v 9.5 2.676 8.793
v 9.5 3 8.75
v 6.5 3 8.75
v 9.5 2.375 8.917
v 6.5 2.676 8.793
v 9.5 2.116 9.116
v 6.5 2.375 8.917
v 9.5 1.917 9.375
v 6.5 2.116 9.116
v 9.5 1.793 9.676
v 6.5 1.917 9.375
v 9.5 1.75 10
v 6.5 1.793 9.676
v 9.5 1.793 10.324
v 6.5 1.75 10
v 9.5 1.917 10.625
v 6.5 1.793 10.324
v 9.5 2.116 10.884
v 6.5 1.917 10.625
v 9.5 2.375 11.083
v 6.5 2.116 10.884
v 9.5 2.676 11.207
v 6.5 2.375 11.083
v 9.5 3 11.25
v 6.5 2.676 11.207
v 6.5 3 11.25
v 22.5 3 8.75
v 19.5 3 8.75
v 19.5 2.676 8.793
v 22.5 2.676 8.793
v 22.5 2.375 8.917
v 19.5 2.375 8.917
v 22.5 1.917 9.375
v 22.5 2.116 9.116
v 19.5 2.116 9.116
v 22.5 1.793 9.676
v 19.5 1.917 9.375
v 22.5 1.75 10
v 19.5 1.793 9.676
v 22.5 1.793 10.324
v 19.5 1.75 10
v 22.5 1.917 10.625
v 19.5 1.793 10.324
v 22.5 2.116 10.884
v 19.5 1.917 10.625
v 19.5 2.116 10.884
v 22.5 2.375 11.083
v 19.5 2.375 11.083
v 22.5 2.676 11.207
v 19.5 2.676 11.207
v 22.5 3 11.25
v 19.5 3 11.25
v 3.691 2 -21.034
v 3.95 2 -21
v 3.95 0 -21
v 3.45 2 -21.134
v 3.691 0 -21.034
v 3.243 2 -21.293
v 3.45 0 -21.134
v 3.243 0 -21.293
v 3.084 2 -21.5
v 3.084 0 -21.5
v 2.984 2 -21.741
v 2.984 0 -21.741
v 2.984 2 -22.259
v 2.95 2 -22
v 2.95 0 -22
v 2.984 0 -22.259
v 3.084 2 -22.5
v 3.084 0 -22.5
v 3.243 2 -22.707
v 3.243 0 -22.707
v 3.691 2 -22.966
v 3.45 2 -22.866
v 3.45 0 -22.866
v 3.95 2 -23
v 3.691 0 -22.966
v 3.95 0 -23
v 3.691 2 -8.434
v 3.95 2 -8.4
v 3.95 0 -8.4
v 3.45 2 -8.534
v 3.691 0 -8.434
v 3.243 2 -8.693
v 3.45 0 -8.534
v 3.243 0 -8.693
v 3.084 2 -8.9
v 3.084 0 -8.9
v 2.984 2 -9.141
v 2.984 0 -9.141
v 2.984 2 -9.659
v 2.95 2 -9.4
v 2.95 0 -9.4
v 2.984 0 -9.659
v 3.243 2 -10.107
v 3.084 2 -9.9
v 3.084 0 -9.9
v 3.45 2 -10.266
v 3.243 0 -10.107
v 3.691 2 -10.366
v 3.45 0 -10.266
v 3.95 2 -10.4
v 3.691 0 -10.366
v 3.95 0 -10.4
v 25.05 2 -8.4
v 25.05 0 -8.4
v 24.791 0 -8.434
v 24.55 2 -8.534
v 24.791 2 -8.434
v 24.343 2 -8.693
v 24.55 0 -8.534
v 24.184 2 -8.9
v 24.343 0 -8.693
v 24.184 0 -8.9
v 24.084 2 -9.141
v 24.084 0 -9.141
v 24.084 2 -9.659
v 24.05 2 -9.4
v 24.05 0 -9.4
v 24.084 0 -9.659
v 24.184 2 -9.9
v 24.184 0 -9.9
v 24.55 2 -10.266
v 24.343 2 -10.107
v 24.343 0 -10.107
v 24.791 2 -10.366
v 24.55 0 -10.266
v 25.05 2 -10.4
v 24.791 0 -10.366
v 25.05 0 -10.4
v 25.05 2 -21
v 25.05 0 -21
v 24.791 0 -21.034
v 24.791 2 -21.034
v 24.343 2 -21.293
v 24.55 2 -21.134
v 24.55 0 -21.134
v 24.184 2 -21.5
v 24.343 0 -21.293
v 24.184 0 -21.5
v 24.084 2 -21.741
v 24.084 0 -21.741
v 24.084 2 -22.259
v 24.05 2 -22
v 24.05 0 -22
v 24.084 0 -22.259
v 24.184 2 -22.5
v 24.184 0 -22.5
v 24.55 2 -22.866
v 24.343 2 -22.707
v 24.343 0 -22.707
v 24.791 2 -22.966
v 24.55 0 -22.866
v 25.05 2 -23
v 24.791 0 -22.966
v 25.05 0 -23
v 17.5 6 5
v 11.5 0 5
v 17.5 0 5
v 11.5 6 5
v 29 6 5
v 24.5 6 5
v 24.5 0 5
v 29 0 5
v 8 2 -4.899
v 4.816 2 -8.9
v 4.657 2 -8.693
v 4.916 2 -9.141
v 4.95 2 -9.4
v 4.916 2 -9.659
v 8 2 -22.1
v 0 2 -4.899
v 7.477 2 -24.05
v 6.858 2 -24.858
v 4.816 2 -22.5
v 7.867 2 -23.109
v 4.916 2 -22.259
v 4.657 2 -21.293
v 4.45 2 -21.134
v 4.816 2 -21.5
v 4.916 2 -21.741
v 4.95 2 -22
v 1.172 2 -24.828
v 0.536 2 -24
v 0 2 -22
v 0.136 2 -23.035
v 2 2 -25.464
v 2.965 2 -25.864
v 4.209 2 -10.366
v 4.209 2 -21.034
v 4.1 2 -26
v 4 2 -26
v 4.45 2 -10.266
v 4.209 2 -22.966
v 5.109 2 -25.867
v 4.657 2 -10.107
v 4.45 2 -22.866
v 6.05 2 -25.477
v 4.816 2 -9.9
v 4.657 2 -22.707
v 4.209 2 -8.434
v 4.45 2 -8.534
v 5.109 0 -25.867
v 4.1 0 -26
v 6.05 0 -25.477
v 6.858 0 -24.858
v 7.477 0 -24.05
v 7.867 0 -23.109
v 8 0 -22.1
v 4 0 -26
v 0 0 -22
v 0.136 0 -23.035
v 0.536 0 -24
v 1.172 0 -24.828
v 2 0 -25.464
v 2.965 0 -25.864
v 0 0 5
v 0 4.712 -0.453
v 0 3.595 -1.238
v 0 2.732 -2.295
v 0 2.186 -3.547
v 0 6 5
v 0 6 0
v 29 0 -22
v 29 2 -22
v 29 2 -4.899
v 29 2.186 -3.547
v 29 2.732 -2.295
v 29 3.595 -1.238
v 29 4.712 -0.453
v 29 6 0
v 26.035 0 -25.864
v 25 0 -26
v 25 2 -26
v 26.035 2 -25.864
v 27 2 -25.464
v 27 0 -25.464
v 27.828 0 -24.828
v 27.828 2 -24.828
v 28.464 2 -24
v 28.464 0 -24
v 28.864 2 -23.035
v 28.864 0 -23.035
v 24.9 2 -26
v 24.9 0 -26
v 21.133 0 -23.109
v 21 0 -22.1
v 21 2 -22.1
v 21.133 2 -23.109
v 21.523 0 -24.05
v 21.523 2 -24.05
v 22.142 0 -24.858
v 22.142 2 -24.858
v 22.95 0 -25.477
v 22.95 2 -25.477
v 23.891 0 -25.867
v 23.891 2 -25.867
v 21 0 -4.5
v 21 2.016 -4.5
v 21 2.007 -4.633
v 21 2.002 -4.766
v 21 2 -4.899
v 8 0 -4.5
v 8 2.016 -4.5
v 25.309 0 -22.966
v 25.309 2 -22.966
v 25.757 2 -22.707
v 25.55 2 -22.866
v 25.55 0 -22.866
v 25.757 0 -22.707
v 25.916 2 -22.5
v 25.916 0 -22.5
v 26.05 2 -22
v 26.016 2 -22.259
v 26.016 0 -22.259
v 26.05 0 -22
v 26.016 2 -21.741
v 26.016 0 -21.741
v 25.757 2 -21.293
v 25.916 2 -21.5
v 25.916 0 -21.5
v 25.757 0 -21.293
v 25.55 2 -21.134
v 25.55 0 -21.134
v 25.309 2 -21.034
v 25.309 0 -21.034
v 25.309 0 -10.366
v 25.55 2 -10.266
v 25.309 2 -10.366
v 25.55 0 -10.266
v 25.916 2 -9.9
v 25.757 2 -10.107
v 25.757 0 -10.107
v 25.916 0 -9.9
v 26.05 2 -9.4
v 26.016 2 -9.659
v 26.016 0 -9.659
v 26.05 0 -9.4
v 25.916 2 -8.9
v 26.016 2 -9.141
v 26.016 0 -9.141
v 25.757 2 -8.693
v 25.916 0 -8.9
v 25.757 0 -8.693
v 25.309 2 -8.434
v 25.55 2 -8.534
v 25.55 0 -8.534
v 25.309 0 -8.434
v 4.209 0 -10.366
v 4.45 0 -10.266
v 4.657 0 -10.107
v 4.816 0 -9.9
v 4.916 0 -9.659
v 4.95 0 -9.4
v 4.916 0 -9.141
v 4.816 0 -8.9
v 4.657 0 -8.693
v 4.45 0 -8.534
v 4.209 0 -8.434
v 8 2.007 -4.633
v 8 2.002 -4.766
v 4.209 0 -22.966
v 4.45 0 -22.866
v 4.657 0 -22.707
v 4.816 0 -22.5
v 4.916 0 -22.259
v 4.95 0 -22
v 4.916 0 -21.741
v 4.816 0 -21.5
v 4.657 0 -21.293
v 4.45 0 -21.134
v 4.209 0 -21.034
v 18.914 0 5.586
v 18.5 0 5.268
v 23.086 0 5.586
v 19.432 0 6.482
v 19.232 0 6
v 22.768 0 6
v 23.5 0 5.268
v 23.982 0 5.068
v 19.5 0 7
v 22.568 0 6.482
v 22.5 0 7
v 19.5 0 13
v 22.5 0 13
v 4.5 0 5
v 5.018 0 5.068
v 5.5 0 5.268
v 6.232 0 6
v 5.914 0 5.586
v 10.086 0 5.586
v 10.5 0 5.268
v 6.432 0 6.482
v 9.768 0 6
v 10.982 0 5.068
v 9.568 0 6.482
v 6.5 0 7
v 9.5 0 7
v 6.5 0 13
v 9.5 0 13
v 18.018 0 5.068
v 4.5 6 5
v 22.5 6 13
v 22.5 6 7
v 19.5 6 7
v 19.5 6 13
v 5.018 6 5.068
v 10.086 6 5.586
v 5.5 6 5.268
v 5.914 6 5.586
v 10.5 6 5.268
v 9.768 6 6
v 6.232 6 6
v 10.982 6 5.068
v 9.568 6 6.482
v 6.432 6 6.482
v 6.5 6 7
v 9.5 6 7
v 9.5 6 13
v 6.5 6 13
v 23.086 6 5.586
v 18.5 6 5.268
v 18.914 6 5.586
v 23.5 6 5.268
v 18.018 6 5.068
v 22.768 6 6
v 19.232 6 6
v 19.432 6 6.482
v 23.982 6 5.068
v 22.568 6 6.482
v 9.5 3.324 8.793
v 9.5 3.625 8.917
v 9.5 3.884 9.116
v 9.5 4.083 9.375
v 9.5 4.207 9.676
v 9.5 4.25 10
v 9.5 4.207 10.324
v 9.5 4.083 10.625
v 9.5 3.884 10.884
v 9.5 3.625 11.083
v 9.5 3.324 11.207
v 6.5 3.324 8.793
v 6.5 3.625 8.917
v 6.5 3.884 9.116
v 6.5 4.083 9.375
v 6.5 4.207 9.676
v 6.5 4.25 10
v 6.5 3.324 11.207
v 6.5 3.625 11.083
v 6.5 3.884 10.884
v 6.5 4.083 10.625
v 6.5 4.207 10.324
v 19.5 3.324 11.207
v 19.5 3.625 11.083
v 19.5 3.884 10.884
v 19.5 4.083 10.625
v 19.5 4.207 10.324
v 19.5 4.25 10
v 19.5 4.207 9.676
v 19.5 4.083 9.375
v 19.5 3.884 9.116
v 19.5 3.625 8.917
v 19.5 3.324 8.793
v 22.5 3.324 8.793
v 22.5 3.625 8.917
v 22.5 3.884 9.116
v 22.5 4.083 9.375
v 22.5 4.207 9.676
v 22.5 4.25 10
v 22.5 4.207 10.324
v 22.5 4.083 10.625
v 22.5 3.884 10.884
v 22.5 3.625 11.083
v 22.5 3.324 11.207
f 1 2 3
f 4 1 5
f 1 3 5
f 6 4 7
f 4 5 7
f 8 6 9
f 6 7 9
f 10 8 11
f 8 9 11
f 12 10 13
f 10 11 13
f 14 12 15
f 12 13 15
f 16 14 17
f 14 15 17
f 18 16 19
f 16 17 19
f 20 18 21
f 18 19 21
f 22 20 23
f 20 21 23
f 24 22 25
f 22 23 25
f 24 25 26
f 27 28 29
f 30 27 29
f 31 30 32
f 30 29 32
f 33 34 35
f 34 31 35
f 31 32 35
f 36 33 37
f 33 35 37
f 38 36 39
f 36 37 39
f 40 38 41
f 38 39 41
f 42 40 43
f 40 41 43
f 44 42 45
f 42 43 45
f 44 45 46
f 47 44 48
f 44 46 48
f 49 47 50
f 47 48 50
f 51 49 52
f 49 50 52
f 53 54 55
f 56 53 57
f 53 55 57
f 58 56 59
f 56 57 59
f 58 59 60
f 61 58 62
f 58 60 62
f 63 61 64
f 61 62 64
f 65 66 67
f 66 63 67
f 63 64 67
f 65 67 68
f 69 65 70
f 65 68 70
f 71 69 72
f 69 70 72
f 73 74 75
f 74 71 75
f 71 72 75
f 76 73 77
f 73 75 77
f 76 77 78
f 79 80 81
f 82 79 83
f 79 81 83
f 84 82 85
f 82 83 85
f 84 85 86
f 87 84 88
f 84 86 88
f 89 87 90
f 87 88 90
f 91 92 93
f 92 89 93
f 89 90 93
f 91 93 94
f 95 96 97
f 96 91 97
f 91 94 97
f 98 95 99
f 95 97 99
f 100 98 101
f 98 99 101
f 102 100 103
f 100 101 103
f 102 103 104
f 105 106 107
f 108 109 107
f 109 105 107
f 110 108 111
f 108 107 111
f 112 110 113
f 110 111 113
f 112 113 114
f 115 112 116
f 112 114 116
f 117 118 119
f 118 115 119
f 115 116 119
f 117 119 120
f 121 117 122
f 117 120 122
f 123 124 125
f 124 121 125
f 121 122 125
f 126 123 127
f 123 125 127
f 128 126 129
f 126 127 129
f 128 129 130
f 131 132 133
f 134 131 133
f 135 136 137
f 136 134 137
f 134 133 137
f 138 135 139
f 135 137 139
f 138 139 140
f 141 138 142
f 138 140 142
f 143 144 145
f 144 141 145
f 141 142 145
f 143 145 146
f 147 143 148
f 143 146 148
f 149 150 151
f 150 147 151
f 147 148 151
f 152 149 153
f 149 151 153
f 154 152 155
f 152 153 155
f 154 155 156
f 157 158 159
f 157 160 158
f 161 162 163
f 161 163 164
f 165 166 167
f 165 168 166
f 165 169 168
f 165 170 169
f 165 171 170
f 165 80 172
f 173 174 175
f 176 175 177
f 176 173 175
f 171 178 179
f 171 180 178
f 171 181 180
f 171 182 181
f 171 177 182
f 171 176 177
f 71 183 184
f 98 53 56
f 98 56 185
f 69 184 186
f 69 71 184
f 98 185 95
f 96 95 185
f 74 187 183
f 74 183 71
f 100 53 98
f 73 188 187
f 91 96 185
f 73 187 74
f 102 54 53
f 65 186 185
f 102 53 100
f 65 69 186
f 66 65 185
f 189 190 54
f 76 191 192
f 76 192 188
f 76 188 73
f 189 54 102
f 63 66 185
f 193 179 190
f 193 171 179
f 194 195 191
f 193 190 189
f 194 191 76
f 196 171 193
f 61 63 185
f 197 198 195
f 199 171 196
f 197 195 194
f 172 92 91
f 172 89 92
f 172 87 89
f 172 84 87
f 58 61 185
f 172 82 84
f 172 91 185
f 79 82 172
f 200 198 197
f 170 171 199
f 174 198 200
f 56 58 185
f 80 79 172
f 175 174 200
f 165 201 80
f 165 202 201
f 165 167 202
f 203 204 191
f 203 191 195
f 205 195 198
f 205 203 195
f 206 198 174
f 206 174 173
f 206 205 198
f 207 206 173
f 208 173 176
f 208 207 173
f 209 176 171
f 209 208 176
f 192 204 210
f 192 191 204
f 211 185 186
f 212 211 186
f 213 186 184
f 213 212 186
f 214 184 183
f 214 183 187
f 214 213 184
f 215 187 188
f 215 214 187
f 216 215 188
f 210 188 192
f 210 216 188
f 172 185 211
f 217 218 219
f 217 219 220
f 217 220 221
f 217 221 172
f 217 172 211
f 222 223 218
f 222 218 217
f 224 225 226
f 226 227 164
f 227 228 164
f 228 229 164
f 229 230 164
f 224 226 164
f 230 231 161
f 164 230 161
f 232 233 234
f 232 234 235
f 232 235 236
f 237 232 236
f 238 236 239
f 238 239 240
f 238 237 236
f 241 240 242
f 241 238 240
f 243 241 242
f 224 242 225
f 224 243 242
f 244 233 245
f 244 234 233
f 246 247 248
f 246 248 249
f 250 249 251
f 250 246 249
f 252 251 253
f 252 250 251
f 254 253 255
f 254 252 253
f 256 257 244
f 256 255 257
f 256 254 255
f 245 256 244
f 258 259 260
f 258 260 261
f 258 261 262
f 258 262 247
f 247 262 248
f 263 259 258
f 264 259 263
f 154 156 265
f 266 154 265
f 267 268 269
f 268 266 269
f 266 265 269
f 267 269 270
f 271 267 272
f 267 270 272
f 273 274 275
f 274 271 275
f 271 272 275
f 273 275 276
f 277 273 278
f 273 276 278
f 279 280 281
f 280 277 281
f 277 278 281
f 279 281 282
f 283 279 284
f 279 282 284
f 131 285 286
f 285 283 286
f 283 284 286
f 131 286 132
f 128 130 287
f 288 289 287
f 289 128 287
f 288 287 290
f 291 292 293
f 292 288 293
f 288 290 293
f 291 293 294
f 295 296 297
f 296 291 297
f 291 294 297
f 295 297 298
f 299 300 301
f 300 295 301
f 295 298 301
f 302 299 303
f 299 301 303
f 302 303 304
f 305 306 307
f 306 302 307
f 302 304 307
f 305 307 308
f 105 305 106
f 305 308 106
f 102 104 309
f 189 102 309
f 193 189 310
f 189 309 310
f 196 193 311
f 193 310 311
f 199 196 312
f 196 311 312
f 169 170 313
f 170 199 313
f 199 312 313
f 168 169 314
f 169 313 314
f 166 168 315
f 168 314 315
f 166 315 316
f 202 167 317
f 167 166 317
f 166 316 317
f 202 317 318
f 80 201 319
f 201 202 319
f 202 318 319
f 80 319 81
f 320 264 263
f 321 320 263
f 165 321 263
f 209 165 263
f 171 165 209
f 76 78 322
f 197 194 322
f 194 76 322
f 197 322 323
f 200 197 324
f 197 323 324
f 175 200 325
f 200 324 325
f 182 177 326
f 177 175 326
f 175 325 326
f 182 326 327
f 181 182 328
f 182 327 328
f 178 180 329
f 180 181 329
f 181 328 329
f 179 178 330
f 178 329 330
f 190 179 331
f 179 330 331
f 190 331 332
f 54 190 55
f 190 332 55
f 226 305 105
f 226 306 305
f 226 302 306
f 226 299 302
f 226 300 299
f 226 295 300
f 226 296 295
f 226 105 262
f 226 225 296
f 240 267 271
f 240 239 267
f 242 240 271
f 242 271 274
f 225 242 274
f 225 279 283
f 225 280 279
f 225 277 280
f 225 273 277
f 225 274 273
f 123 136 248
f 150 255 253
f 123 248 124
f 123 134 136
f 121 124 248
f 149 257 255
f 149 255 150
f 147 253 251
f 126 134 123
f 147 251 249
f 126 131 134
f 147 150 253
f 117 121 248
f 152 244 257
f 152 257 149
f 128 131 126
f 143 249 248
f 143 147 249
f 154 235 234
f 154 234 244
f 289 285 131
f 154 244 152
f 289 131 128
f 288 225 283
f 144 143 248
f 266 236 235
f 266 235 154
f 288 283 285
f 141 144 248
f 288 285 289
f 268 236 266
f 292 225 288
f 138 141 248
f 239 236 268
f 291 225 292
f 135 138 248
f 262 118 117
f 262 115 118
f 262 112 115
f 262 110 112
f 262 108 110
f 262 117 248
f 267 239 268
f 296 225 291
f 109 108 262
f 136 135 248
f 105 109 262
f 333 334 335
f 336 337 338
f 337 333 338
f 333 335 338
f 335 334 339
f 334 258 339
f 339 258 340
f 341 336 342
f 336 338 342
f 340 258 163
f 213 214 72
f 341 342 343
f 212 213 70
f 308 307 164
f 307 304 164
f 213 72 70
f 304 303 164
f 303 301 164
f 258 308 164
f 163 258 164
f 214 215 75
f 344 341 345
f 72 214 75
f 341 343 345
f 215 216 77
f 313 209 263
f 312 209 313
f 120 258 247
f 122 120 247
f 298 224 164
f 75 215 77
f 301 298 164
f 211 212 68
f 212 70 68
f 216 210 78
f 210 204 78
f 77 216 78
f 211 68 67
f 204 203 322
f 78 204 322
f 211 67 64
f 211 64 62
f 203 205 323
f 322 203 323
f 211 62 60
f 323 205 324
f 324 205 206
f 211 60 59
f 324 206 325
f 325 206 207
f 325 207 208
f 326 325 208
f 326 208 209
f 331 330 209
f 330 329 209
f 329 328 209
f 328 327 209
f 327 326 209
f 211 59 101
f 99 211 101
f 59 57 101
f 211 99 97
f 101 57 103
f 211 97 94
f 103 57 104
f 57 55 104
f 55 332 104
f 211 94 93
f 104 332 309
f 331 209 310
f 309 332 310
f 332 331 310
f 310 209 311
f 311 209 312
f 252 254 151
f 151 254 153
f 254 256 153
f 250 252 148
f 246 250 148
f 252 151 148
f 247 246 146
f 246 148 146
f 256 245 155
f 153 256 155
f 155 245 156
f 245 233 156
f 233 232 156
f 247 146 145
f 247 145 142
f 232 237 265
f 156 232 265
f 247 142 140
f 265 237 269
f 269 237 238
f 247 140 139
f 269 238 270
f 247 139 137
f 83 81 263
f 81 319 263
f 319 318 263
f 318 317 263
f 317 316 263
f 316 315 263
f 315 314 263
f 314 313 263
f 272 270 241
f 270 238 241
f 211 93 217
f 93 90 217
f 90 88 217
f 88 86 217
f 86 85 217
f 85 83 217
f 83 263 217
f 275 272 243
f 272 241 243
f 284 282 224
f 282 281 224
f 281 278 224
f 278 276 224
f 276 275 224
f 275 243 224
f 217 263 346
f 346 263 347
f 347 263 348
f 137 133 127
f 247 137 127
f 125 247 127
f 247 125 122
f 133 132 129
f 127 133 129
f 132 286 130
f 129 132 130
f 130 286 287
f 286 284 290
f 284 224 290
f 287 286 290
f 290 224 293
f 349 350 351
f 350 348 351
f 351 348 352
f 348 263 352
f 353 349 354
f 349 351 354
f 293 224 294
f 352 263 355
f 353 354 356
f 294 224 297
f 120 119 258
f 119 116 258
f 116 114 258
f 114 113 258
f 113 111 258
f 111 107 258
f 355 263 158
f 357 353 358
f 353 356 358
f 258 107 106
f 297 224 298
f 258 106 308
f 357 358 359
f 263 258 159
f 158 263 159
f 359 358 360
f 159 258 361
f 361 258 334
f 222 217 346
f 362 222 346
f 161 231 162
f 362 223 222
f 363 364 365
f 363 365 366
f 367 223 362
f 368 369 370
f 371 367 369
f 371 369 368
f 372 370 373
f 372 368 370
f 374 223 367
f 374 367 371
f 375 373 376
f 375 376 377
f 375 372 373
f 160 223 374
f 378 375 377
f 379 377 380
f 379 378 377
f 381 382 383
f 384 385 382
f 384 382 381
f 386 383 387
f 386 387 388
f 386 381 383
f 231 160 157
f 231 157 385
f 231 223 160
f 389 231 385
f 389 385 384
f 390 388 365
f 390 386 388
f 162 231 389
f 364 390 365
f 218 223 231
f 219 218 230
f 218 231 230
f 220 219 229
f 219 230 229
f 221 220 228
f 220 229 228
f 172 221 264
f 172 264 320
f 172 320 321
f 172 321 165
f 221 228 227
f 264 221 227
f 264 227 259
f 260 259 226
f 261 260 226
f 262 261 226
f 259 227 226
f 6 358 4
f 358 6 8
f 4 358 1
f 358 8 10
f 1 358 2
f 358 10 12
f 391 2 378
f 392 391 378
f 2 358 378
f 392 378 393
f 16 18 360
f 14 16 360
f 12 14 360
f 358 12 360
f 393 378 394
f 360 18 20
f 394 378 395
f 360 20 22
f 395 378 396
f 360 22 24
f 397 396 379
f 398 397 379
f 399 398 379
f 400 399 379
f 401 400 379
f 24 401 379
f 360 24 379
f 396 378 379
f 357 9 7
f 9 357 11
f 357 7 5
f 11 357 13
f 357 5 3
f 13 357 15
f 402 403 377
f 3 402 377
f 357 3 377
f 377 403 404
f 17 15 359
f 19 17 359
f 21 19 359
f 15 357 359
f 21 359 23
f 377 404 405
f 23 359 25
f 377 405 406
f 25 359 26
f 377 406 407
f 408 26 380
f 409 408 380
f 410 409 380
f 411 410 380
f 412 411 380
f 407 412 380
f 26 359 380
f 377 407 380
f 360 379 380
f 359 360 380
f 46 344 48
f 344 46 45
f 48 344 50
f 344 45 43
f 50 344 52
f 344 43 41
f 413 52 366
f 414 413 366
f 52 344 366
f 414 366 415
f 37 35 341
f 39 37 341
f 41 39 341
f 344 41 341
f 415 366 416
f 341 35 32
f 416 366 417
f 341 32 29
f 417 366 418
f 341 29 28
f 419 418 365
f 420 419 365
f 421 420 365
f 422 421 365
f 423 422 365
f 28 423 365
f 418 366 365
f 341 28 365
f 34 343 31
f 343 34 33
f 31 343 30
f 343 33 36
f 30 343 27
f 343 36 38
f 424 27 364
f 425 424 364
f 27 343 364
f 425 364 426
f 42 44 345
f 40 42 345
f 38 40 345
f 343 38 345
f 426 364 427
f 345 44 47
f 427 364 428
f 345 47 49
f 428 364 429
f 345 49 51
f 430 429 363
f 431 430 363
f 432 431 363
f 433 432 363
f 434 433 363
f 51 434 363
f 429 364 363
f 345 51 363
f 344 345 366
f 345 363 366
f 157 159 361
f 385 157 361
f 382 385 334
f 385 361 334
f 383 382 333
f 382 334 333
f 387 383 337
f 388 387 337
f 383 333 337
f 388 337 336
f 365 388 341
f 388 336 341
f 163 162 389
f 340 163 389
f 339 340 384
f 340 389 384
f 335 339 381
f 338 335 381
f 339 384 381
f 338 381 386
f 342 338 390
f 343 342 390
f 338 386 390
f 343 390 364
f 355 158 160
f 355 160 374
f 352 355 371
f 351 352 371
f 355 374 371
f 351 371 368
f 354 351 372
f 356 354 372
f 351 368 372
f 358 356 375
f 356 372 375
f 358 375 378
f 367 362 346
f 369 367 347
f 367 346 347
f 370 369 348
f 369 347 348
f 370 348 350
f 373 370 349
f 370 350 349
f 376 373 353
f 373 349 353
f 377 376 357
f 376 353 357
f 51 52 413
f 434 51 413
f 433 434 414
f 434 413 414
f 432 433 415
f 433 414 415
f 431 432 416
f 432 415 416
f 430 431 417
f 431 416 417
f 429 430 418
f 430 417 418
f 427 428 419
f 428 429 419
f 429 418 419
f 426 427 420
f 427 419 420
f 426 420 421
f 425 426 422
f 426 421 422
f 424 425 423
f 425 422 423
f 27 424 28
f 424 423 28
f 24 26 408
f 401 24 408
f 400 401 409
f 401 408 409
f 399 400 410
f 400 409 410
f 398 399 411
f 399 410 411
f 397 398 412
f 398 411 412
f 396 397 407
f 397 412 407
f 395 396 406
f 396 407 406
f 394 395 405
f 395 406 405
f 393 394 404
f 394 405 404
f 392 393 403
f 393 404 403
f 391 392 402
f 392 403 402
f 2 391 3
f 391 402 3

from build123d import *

# Parameters (mm, degrees)
SKETCH1_R                = 1
BOSS_EXTRUDE1_DEPTH      = 2
BOSS_EXTRUDE2_DEPTH      = 4
BOSS_EXTRUDE2_DEPTH_BACK = 2
SKETCH2_W                = 29
SKETCH2_H                = 5
FILLET1_R                = 5
SKETCH3_W                = 3
SKETCH3_H                = 6
BOSS_EXTRUDE3_DEPTH      = 8
FILLET2_R                = 2
CUT_EXTRUDE1_DEPTH       = 15
CUT_EXTRUDE1_DEPTH_BACK  = 7
SKETCH4_R                = 1.25


with BuildPart() as part:
    # Sketch1 → Boss-Extrude1 (new body)
    with BuildSketch(Plane(origin=(0, 0, 0), x_dir=(1, 0, 0), z_dir=(0, 1, 0))):
        with BuildLine():
            Line((24.9, 26), (25, 26))
            ThreePointArc((25, 26), (27.828427125, 24.828427125), (29, 22))
            Line((29, 22), (29, 0))
            Line((29, 0), (0, 0))
            Line((0, 0), (0, 22))
            ThreePointArc((0, 22), (1.171572875, 24.828427125), (4, 26))
            Line((4, 26), (4.1, 26))
            ThreePointArc((4.1, 26), (6.857716447, 24.857716447), (8, 22.1))
            Line((8, 22.1), (8, 4.5))
            Line((8, 4.5), (21, 4.5))
            Line((21, 4.5), (21, 22.1))
            ThreePointArc((21, 22.1), (22.142283553, 24.857716447), (24.9, 26))
        make_face()
        with Locations(Location((3.95, 22, 0), (0, 0, 270))):
            Circle(SKETCH1_R, mode=Mode.SUBTRACT)
        with Locations(Location((25.05, 22, 0), (0, 0, 270))):
            Circle(SKETCH1_R, mode=Mode.SUBTRACT)
        with Locations(Location((25.05, 9.4, 0), (0, 0, 270))):
            Circle(SKETCH1_R, mode=Mode.SUBTRACT)
        with Locations(Location((3.95, 9.4, 0), (0, 0, 270))):
            Circle(SKETCH1_R, mode=Mode.SUBTRACT)
    extrude(amount=BOSS_EXTRUDE1_DEPTH)

    # Sketch2 → Boss-Extrude2 (add, two sides: drawn at the far end of the back side and taken through both)
    with BuildSketch(Plane(origin=(0, 2, 0), x_dir=(1, 0, 0), z_dir=(0, 1, 0)).offset(-BOSS_EXTRUDE2_DEPTH_BACK)):
        with Locations((14.5, -2.5)):
            Rectangle(SKETCH2_W, SKETCH2_H)
    extrude(amount=BOSS_EXTRUDE2_DEPTH + BOSS_EXTRUDE2_DEPTH_BACK)

    # Fillet1
    # the kernel refuses this fillet: 5 mm, written as the material it adds along each edge
    with BuildSketch(Plane(origin=(29, 2, 0), x_dir=(0, 0, -1), z_dir=(-1, 0, 0))) as fillet1_piece_1_section:
        with BuildLine():
            CenterArc((4.898979486, -5), FILLET1_R, 90, 78.463040967)
            Line((0, -4), (0, 0))
            Line((0, 0), (4.898979486, 0))
        make_face()
    fillet1_piece_1 = extrude(amount=41.247448714, mode=Mode.PRIVATE)
    fillet1_piece_1 = split(fillet1_piece_1, bisect_by=Plane(origin=(21, 2, 0), z_dir=(1, 0, 0)), keep=Keep.TOP, mode=Mode.PRIVATE)
    add(fillet1_piece_1)
    with BuildSketch(Plane(origin=(29, 2, 0), x_dir=(0, 0, -1), z_dir=(-1, 0, 0))) as fillet1_piece_2_section:
        with BuildLine():
            CenterArc((4.898979486, -5), FILLET1_R, 90, 78.463040967)
            Line((0, -4), (0, 0))
            Line((0, 0), (4.898979486, 0))
        make_face()
    fillet1_piece_2 = extrude(amount=29, mode=Mode.PRIVATE)
    fillet1_piece_2 = split(fillet1_piece_2, bisect_by=Plane(origin=(29, 2, -4.5), z_dir=(0, 0, 1)), keep=Keep.TOP, mode=Mode.PRIVATE)
    add(fillet1_piece_2)
    with BuildSketch(Plane(origin=(41.247448714, 2, 0), x_dir=(0, 0, -1), z_dir=(-1, 0, 0))) as fillet1_piece_3_section:
        with BuildLine():
            CenterArc((4.898979486, -5), FILLET1_R, 90, 78.463040967)
            Line((0, -4), (0, 0))
            Line((0, 0), (4.898979486, 0))
        make_face()
    fillet1_piece_3 = extrude(amount=41.247448714, mode=Mode.PRIVATE)
    fillet1_piece_3 = split(fillet1_piece_3, bisect_by=Plane(origin=(8, 2, 0), z_dir=(-1, 0, 0)), keep=Keep.TOP, mode=Mode.PRIVATE)
    add(fillet1_piece_3)

    # Sketch3 → Boss-Extrude3 (add)
    with BuildSketch(Plane.XY.offset(5)):
        with Locations((8, 3)):
            Rectangle(SKETCH3_W, SKETCH3_H)
        with Locations((21, 3)):
            Rectangle(SKETCH3_W, SKETCH3_H)
    extrude(amount=BOSS_EXTRUDE3_DEPTH)

    # Fillet2
    fillet2_edges = [part.edges().sort_by_distance(p)[0] for p in [
        (9.5, 3, 5),
        (6.5, 3, 5),
        (19.5, 3, 5),
        (22.5, 3, 5),
    ]]
    fillet(fillet2_edges, radius=FILLET2_R)

    # Sketch4 → Cut-Extrude1 (cut, two sides: drawn at the far end of the back side and taken through both)
    with BuildSketch(Plane(origin=(9.5, 0, 0), x_dir=(0, 0, -1), z_dir=(1, 0, 0)).offset(-CUT_EXTRUDE1_DEPTH_BACK)):
        with Locations(Location((-10, 3, 0), (0, 0, 180))):
            Circle(SKETCH4_R)
    extrude(amount=CUT_EXTRUDE1_DEPTH + CUT_EXTRUDE1_DEPTH_BACK, mode=Mode.SUBTRACT)


solid = part.part
